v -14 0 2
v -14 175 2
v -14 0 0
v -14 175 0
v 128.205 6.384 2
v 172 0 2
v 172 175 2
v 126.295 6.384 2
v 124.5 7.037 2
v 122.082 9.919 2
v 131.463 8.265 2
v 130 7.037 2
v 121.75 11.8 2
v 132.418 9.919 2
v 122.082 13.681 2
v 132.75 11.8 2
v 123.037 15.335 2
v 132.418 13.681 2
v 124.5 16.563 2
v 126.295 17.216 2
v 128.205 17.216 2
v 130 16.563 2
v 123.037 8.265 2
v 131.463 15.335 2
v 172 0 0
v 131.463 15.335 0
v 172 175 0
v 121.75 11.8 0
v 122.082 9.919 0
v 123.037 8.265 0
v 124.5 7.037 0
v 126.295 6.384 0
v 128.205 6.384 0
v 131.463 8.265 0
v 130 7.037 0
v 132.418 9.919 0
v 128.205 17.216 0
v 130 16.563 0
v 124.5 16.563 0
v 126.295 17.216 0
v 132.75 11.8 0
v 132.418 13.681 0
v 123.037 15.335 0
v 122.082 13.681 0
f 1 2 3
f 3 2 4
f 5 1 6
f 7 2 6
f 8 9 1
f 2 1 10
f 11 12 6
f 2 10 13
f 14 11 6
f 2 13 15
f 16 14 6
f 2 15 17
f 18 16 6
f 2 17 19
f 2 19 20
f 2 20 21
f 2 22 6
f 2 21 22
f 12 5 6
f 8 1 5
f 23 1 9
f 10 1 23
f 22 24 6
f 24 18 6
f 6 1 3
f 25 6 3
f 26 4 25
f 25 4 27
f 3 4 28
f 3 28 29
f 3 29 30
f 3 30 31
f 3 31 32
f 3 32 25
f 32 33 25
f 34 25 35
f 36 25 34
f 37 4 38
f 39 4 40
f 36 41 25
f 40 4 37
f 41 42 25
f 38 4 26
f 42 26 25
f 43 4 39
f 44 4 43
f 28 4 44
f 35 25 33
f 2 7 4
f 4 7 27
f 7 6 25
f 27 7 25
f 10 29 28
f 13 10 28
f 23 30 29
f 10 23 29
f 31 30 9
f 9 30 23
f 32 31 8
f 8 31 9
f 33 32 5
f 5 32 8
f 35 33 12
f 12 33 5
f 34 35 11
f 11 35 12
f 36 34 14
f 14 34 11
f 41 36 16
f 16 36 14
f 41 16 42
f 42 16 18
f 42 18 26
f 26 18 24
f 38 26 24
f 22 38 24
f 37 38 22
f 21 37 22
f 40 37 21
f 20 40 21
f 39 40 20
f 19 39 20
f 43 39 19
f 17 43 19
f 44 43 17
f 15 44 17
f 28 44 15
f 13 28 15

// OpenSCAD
/* This piece was designed by Shawn French (McMaster University, Ontario, Canada)
It is part of the SCIFIcube (SCIentific Fluorescence Imaging cube), a small and portable 3D-printed
fluorescence imager for bacteria, yeast, or any colony-forming organism.  It works well with solid
agar medium, and can image high density samples rapidly over time.  

Details can be found at https://www.github.com/sfrench007/scificube

Copyright 2017 McMaster University

Redistribution and use in source and binary forms, with or without modification, are permitted provided that the following conditions are met:

1. Redistributions of source code must retain the above copyright notice, this list of conditions and the following disclaimer.

2. Redistributions in binary form must reproduce the above copyright notice, this list of conditions and the following disclaimer in the documentation and/or other materials provided with the distribution.

3. Neither the name of the copyright holder nor the names of its contributors may be used to endorse or promote products derived from this software without specific prior written permission.

THIS SOFTWARE IS PROVIDED BY THE COPYRIGHT HOLDERS AND CONTRIBUTORS "AS IS" AND ANY EXPRESS OR IMPLIED WARRANTIES, INCLUDING, BUT NOT LIMITED TO, THE IMPLIED WARRANTIES OF MERCHANTABILITY AND FITNESS FOR A PARTICULAR PURPOSE ARE DISCLAIMED. IN NO EVENT SHALL THE COPYRIGHT HOLDER OR CONTRIBUTORS BE LIABLE FOR ANY DIRECT, INDIRECT, INCIDENTAL, SPECIAL, EXEMPLARY, OR CONSEQUENTIAL DAMAGES (INCLUDING, BUT NOT LIMITED TO, PROCUREMENT OF SUBSTITUTE GOODS OR SERVICES; LOSS OF USE, DATA, OR PROFITS; OR BUSINESS INTERRUPTION) HOWEVER CAUSED AND ON ANY THEORY OF LIABILITY, WHETHER IN CONTRACT, STRICT LIABILITY, OR TORT (INCLUDING NEGLIGENCE OR OTHERWISE) ARISING IN ANY WAY OUT OF THE USE OF THIS SOFTWARE, EVEN IF ADVISED OF THE POSSIBILITY OF SUCH DAMAGE.

*/

// Height 175 mm (camera to base)
// Width 157 mm
// Depth 134 mm
// 135 mm camera to top of transilluminator
// 40 mm transilluminator height (base height)

boardWidth = 147;
boardDepth = 115;
boardHeight = 2;
acWidth = 11.5;
acHeight = 9;
acOffset = 5;
acRad = (acHeight/2)+1;
switchWidth = 11;
switchHeight = 7;
switchOffset = 3.5;

transDepth = 126.5;
transWidth = 157.5;
transHeight = 40;
transWallWidth = (transWidth-boardWidth)/2;

rigWallWidth = 3;
rigHeight = 175;
rigWidth = transWidth + (rigWallWidth * 2);
rigDepth = transDepth + (rigWallWidth * 2);
echo(rigWidth);
echo(rigDepth);
riserHeight = 4.8;
riserWidth = 10;

railWidth = 20;
sideWallWidth = 2;
allowance = 1;
slitDepth = 10;

// The wall with a hole and cord rings
rotate([-90,0,0])
difference() {
    rotate([90,0,0]) translate([-14,0,0]) cube(size=[186,rigHeight,sideWallWidth],center=false);    
    translate([(transWallWidth+boardWidth-25),rigWallWidth+30,(riserHeight+boardHeight+acOffset)]) rotate(a = [90,0,0]) cylinder(h=(rigWallWidth+transWallWidth+30),r1=acRad,r2=acRad,center=false);
}
